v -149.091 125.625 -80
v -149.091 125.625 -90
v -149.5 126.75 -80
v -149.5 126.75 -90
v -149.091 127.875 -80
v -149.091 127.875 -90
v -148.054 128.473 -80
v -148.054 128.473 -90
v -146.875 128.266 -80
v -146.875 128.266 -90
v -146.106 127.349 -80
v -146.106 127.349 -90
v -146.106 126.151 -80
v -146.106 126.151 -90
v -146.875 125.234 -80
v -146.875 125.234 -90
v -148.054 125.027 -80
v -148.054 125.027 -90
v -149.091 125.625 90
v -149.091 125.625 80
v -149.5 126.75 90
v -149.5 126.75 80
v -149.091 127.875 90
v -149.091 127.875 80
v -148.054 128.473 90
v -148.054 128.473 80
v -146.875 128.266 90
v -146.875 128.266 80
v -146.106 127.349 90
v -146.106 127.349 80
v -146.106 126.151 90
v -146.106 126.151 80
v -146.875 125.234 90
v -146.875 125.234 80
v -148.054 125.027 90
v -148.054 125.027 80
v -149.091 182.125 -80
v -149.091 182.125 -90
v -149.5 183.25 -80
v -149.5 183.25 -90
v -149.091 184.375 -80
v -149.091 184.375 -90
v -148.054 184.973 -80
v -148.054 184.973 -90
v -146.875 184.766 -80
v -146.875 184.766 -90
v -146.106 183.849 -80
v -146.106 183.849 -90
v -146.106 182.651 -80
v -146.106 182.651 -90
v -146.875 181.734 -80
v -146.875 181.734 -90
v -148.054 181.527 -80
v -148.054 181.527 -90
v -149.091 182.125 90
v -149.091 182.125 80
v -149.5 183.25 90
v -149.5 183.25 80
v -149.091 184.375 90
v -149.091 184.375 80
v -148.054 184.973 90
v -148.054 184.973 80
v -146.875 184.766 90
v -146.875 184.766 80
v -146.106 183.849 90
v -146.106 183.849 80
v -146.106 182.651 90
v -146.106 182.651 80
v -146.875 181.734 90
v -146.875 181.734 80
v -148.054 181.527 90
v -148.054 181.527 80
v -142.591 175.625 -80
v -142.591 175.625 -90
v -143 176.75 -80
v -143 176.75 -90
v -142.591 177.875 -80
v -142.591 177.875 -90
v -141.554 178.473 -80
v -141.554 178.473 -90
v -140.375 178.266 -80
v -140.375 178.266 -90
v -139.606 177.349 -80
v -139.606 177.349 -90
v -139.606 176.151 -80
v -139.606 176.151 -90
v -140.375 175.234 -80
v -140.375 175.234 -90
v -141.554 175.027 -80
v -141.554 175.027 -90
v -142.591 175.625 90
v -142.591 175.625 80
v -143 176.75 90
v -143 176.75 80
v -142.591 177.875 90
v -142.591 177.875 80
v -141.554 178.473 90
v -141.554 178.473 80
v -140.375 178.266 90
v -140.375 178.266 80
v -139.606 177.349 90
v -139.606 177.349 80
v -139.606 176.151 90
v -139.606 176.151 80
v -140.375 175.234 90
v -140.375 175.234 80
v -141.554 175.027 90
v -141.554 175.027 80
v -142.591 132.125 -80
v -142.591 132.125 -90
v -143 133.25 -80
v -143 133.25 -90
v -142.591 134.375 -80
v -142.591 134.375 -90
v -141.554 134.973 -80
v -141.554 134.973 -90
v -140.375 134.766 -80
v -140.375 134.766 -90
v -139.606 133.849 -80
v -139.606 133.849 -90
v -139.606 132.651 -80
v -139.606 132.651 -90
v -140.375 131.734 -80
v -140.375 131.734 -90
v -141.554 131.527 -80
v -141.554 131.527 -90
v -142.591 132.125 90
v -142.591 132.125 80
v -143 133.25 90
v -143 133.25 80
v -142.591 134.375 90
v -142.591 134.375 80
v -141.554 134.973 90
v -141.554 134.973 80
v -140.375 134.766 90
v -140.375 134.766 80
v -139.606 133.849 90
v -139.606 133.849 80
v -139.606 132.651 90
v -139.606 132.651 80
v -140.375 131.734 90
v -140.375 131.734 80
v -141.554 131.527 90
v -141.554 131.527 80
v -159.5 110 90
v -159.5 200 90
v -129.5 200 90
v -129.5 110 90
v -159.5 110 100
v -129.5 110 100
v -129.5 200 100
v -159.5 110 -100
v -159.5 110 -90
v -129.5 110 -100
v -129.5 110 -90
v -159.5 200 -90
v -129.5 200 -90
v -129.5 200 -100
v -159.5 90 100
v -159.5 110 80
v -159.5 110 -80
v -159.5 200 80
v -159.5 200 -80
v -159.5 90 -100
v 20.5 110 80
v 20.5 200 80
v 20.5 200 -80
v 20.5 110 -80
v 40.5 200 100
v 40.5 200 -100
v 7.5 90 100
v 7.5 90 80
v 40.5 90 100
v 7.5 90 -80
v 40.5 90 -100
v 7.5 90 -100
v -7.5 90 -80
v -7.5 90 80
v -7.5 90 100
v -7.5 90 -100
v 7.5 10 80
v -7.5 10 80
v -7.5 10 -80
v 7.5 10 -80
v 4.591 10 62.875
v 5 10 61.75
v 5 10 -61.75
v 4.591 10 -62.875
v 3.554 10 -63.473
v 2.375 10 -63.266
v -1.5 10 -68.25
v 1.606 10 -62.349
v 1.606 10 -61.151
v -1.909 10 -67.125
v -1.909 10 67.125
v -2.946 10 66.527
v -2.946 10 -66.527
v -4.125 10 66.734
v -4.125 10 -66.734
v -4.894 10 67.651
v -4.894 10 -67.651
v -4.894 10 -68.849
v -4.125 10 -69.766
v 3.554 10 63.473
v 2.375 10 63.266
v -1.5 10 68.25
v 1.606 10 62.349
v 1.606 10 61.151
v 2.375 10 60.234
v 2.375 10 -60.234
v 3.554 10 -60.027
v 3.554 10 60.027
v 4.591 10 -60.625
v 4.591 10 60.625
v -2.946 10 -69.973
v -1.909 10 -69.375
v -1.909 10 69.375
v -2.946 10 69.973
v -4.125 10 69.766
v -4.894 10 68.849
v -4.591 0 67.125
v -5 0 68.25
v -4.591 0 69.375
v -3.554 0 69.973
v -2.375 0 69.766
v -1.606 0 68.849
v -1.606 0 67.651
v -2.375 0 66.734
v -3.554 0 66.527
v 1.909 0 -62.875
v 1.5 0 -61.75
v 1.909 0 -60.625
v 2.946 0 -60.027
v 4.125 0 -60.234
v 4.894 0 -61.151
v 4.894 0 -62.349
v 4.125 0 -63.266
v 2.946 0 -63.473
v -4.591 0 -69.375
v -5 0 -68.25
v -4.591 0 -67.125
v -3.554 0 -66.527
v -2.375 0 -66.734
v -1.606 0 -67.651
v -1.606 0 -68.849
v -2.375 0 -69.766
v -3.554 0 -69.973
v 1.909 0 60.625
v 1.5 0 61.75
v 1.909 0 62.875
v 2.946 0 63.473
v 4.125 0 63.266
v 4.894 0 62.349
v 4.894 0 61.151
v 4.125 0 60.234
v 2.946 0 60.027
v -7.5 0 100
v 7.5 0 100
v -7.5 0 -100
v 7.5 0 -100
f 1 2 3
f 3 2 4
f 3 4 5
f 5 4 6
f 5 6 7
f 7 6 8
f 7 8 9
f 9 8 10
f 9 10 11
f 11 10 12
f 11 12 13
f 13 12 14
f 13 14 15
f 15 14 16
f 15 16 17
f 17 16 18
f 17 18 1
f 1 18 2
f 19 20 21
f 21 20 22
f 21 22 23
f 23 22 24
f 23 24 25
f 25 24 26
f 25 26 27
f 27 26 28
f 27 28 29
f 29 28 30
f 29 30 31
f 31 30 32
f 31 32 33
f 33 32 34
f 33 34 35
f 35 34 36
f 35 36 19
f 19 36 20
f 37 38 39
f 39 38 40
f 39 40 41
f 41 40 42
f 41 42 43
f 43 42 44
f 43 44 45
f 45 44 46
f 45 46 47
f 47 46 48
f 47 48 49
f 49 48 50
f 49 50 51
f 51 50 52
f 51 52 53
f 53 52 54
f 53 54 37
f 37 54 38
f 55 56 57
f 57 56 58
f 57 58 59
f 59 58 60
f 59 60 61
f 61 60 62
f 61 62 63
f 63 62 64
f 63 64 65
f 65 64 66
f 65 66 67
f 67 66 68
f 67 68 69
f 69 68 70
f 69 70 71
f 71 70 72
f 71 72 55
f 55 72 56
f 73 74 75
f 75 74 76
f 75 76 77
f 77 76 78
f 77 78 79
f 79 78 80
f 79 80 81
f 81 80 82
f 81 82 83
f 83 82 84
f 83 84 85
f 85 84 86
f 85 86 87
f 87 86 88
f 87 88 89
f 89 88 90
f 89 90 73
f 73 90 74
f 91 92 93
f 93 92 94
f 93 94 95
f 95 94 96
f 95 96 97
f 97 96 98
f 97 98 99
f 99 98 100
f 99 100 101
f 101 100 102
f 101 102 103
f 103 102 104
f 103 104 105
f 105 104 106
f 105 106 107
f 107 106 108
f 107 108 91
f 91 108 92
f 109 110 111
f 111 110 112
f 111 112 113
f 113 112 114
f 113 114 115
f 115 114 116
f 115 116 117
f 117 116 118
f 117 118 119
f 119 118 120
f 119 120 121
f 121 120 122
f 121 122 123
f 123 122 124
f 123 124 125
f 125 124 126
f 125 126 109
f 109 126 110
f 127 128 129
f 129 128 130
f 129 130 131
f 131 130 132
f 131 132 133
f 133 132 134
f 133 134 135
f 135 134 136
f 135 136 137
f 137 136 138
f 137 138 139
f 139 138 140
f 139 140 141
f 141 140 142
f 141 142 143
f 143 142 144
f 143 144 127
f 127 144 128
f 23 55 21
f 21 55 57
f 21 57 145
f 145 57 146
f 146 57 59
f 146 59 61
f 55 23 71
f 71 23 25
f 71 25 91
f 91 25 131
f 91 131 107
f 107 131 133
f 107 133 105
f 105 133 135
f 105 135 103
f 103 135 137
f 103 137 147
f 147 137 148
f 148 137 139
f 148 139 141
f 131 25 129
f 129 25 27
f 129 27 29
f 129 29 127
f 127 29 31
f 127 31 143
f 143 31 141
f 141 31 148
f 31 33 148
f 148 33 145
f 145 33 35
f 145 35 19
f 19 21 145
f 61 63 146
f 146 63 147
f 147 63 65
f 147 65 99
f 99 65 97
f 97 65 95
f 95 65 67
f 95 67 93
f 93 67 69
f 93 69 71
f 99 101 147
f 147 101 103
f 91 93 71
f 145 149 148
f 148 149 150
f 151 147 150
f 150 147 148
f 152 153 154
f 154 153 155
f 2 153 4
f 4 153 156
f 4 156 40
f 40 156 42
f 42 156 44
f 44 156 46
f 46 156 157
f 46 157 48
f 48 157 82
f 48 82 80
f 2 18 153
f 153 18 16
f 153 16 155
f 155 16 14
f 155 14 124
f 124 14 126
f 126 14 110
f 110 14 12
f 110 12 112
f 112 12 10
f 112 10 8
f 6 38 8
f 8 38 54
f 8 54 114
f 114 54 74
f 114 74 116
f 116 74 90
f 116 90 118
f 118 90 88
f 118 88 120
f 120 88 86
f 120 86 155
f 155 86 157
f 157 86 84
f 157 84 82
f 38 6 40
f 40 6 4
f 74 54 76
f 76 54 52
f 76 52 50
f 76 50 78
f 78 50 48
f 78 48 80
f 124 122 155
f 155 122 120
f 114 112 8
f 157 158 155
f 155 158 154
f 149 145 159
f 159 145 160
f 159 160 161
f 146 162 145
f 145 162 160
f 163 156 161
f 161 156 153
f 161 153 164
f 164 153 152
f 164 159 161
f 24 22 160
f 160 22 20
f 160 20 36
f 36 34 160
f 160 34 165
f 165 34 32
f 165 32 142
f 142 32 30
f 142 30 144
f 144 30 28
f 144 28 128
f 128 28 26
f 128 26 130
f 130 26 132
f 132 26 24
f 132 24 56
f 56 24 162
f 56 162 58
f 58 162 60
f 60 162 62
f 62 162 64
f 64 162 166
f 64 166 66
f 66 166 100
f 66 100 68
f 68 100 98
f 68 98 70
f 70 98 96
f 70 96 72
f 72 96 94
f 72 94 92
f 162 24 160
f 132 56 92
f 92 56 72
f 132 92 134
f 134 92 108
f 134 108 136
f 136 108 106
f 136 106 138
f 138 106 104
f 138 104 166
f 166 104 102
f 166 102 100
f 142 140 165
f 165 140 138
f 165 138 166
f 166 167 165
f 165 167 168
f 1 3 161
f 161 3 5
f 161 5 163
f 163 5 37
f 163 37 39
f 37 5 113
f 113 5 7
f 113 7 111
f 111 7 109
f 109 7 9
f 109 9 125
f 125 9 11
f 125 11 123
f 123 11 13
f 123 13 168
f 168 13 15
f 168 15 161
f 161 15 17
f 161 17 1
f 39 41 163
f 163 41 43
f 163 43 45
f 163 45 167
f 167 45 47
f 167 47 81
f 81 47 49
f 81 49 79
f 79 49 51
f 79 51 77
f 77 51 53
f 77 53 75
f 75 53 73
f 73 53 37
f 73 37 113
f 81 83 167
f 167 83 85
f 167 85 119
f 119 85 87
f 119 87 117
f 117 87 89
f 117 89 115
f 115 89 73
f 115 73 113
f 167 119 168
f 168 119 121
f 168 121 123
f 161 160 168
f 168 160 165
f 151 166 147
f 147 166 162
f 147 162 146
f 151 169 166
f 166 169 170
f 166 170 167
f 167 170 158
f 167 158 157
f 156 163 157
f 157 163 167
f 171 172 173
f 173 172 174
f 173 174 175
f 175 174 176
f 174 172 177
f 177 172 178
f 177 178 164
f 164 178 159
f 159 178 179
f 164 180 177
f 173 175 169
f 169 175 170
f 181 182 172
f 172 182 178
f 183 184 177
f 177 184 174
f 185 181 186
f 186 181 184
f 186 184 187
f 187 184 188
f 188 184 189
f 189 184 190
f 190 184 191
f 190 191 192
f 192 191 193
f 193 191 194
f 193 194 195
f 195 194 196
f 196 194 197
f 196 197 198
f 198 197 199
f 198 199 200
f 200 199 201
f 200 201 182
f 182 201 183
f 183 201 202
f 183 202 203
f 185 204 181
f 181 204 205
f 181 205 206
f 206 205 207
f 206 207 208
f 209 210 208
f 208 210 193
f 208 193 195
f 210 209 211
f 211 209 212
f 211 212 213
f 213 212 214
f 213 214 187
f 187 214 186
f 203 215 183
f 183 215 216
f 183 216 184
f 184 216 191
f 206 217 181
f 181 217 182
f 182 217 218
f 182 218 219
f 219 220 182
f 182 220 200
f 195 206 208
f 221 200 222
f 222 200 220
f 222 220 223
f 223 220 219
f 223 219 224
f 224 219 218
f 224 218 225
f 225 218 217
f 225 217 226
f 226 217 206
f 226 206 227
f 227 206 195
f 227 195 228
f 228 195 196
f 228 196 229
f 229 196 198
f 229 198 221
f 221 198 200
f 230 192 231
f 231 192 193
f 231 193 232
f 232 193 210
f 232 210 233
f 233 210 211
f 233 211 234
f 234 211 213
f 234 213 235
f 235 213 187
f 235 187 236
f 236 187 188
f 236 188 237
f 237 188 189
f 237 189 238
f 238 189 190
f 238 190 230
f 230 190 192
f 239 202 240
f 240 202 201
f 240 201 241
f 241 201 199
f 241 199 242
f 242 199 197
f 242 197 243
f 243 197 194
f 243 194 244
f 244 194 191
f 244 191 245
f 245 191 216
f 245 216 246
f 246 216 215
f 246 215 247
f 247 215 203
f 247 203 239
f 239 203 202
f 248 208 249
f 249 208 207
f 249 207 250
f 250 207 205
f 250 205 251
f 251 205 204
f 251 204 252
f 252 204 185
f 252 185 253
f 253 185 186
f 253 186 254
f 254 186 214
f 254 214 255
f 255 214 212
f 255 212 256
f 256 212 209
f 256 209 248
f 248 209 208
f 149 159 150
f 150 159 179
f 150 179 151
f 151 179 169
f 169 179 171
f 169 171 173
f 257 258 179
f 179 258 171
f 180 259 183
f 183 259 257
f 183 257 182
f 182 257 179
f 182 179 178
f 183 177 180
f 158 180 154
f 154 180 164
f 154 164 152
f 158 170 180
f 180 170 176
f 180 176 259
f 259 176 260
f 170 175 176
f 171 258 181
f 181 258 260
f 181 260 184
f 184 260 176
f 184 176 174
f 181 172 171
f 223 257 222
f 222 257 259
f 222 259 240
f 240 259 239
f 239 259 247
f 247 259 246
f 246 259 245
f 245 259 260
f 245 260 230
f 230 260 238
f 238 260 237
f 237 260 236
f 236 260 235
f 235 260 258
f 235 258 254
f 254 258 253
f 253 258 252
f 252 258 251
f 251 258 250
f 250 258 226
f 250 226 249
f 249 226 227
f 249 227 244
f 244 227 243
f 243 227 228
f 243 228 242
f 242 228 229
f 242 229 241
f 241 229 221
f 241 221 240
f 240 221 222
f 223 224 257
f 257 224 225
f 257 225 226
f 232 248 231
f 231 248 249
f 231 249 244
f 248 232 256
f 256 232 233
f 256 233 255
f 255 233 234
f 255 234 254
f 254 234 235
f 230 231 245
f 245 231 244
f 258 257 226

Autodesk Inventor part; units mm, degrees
ref_plane "YZ Plane" through (0, 0, 0) normal (1, 0, 0) x (0, 1, 0)
ref_plane "XZ Plane" through (0, 0, 0) normal (0, 1, 0) x (-1, 0, 0)
ref_plane "XY Plane" through (0, 0, 0) normal (0, 0, 1) x (1, 0, 0)
sketch "Boceto2" plane through (0, 0, 0) normal (0, 1, 0) x (-1, 0, 0)
  line L0 (7.5, 100) -> (-7.5, 100)
  line L1 (-7.5, 100) -> (-7.5, -100)
  line L2 (-7.5, -100) -> (7.5, -100)
  line L3 (7.5, -100) -> (7.5, 100)
  line L4 (7.5, 100) -> (-7.5, -100) construction
  line L5 (-7.5, 100) -> (7.5, -100) construction
  point P0 (0, 0)
  dimension "d7" = 15
  dimension "d8" = 200
extrude "Extrusión1" add sketch "Boceto2" along normal blind 10
sketch "Boceto3" plane through (0, 10, 0) normal (0, 1, 0) x (1, 0, 0)
  line L0 (5, 60) -> (-5, 60)
  line L1 (-5, 60) -> (-5, 70)
  line L2 (-5, 70) -> (5, 70)
  line L3 (5, 70) -> (5, 60)
  line L4 (5, 60) -> (-5, 70) construction
  line L5 (7.5, 100) -> (-7.5, 100) projected
  line L6 (0, 64.5148) -> (0, 61.9205)
  circle A0 centre (3.25, 61.75) radius 1.75
  circle A1 centre (-3.25, 68.25) radius 1.75
  line L7 (-7.5, 100) -> (-7.5, -100) projected
  line L8 (-7.5, 0) -> (0, 0)
  line L9 (5, -70) -> (5, -60)
  line L10 (-5, -70) -> (5, -70)
  line L11 (5, -60) -> (-5, -60)
  line L12 (-5, -60) -> (-5, -70)
  line L13 (5, -60) -> (-5, -70) construction
  line L14 (0, -64.5148) -> (0, -61.9205)
  circle A2 centre (-3.25, -68.25) radius 1.75
  circle A3 centre (3.25, -61.75) radius 1.75
  point P0 (3.25, 68.25)
  point P1 (-5, 65)
  point P2 (-3.25, 61.75)
  point P3 (0, 100)
  point P4 (3.25, -68.25)
  point P5 (-3.25, -61.75)
  point P6 (-5, -65)
  dimension "d12" = 1.75
  dimension "d13" = 1.75
  dimension "d14" = 1.75
  dimension "d15" = 1.75
  dimension "d16" = 10
  dimension "d17" = 10
  dimension "d19" = 30
  dimension "d67" = 31.75
hole "Agujero1" at (3.25, 10, -61.75) at (-3.25, 10, -68.25) at (-3.25, 10, 68.25) at (3.25, 10, 61.75) direction (0, -1, 0) diameter 3.5 end through all
sketch "Boceto4" plane through (0, 10, 0) normal (0, 1, 0) x (1, 0, 0)
  line L0 (-7.5, 100) -> (-7.5, -100) projected
  line L1 (-7.5, -100) -> (7.5, -100)
  line L2 (7.5, -100) -> (7.5, -80)
  line L3 (7.5, -80) -> (-7.5, -80)
  line L4 (-7.5, -80) -> (-7.5, -100)
  line L5 (-7.5, 0) -> (1.0116, 0)
  line L6 (-7.5, -100) -> (-7.5, 100)
  line L7 (-7.5, 100) -> (7.5, 100)
  line L8 (7.5, 100) -> (7.5, 80)
  line L9 (7.5, 80) -> (-7.5, 80)
  line L10 (-7.5, 80) -> (-7.5, 100)
  point P0 (0, 0)
  point P1 (-7.5, -80)
  point P2 (-7.5, 80)
  dimension "d27" = 15
  dimension "d28" = 20
extrude "Extrusión2" add sketch "Boceto4" along normal blind 80
sketch "Boceto5" plane through (0, 90, 0) normal (0, 1, 0) x (1, 0, 0)
  line L0 (-7.5, -100) -> (7.5, -100) projected
  line L1 (-7.5, -100) -> (40.5, -100)
  line L2 (40.5, -100) -> (40.5, 100)
  line L3 (40.5, 100) -> (-7.5, 100)
  line L4 (-7.5, 100) -> (-7.5, -100)
  line L5 (40.5, -100) -> (-159.5, -100)
  line L6 (-159.5, -100) -> (-159.5, 100)
  line L7 (-159.5, 100) -> (40.5, 100)
  line L8 (40.5, 100) -> (40.5, -100)
  point P0 (0, 0)
  point P1 (-7.5, 100)
  dimension "d31" = 48
  dimension "d32" = 200
  dimension "d74" = 200
extrude "Extrusión3" add sketch "Boceto5" along normal blind 110
sketch "Boceto6" plane through (0, 200, 0) normal (0, 1, 0) x (1, 0, 0)
  line L0 (40.5, 100) -> (7.5, 100) projected
  line L1 (40.5, 100) -> (20.5, 100)
  line L2 (20.5, 100) -> (20.5, 80)
  line L3 (7.5, -100) -> (40.5, -100) projected
  line L4 (24, -100) -> (24, -80)
  line L5 (-159.5, 100) -> (-159.5, -100) projected
  line L6 (20.5, 80) -> (-159.5, 80)
  line L7 (-159.5, 80) -> (-159.5, -80)
  line L8 (-159.5, -80) -> (20.5, -80)
  line L9 (20.5, -80) -> (20.5, 80)
  line L10 (-159.5, -100) -> (40.5, -100) projected
  point P0 (7.5, 80)
  point P1 (-159.5, 80)
  dimension "d36" = 20
  dimension "d37" = 20
  dimension "d38" = 20
  dimension "d78" = 20
extrude "Extrusión4" cut sketch "Boceto6" against normal blind 90
sketch "Boceto7" plane through (-159.5, 90, -100) normal (-1, 0, 0) x (0, 0, 1)
  line L0 (0, 110) -> (20, 110) projected
  line L1 (20, 110) -> (10, 110)
  line L2 (10, 110) -> (10, 20)
  line L3 (10, 20) -> (20, 20)
  line L4 (20, 20) -> (20, 110)
  line L5 (180, 110) -> (180, 20) projected
  line L6 (180, 110) -> (190, 110)
  line L7 (190, 110) -> (190, 20)
  line L8 (190, 20) -> (180, 20)
  line L9 (180, 20) -> (180, 110)
  line L10 (200, 0) -> (200, 110) projected
  line L11 (0, 0) -> (0, 110) projected
  line L12 (0, 110) -> (10, 110)
  line L13 (10, 110) -> (10, 20)
  line L14 (10, 20) -> (0, 20)
  line L15 (0, 20) -> (0, 110)
  line L16 (200, 110) -> (0, 110) projected
  line L17 (200, 110) -> (190, 110)
  line L18 (190, 110) -> (190, 20)
  line L19 (190, 20) -> (200, 20)
  line L20 (200, 20) -> (200, 110)
  point P0 (100, -90)
  point P1 (200, 20)
  dimension "d42" = 10
  dimension "d63" = 10
  dimension "d65" = 10
extrude "Extrusión5" cut sketch "Boceto7" against normal blind 30 contours L0 L2 L14 L11 | L16 L10 L19 L7
sketch "Boceto8" plane through (-7.5, 0, 100) normal (0, 0, 1) x (1, 0, 0)
  line L0 (-122, 200) -> (-122, 110) projected
  line L1 (-132, 175) -> (-142, 175)
  line L2 (-142, 175) -> (-142, 185)
  line L3 (-142, 185) -> (-132, 185)
  line L4 (-132, 185) -> (-132, 175)
  line L5 (-132, 175) -> (-142, 185) construction
  line L6 (-142, 175) -> (-132, 185) construction
  line L7 (-152, 200) -> (48, 200) projected
  line L8 (-113, 155) -> (-128, 155)
  line L9 (-152, 110) -> (-122, 110) projected
  line L10 (-132, 180) -> (-131.5898, 180)
  circle A0 centre (-140.25, 183.25) radius 1.75
  circle A1 centre (-133.75, 176.75) radius 1.75
  line L11 (-132, 125) -> (-132, 135)
  line L12 (-142, 125) -> (-132, 125)
  line L13 (-132, 135) -> (-142, 125) construction
  line L14 (-132, 135) -> (-142, 135)
  line L15 (-142, 135) -> (-132, 125) construction
  line L16 (-142, 135) -> (-142, 125)
  line L17 (-132, 130) -> (-131.5898, 130)
  circle A2 centre (-133.75, 133.25) radius 1.75
  circle A3 centre (-140.25, 126.75) radius 1.75
  line L18 (-152, 110) -> (-152, 200) projected
  point P0 (7.5, 0)
  point P1 (-113, 215)
  point P2 (-133.75, 183.25)
  point P3 (-142, 180)
  point P4 (-140.25, 176.75)
  point P5 (48, 200)
  point P6 (-133.75, 126.75)
  point P7 (-140.25, 133.25)
  point P8 (-143, 115)
  point P9 (-133.75, 126.75)
  point P10 (-140.25, 133.25)
  point P11 (-142, 130)
  dimension "d46" = 1.75
  dimension "d47" = 1.75
  dimension "d48" = 1.75
  dimension "d49" = 1.75
  dimension "d50" = 10
  dimension "d51" = 10
  dimension "d52" = 15
  dimension "d66" = 10
  dimension "d70" = 15
hole "Agujero2" at (-147.75, 183.25, 100) at (-141.25, 176.75, 100) at (-147.75, 126.75, 100) at (-141.25, 133.25, 100) direction (0, 0, -1) diameter 3.5 end through all
properties part number "container_back"
